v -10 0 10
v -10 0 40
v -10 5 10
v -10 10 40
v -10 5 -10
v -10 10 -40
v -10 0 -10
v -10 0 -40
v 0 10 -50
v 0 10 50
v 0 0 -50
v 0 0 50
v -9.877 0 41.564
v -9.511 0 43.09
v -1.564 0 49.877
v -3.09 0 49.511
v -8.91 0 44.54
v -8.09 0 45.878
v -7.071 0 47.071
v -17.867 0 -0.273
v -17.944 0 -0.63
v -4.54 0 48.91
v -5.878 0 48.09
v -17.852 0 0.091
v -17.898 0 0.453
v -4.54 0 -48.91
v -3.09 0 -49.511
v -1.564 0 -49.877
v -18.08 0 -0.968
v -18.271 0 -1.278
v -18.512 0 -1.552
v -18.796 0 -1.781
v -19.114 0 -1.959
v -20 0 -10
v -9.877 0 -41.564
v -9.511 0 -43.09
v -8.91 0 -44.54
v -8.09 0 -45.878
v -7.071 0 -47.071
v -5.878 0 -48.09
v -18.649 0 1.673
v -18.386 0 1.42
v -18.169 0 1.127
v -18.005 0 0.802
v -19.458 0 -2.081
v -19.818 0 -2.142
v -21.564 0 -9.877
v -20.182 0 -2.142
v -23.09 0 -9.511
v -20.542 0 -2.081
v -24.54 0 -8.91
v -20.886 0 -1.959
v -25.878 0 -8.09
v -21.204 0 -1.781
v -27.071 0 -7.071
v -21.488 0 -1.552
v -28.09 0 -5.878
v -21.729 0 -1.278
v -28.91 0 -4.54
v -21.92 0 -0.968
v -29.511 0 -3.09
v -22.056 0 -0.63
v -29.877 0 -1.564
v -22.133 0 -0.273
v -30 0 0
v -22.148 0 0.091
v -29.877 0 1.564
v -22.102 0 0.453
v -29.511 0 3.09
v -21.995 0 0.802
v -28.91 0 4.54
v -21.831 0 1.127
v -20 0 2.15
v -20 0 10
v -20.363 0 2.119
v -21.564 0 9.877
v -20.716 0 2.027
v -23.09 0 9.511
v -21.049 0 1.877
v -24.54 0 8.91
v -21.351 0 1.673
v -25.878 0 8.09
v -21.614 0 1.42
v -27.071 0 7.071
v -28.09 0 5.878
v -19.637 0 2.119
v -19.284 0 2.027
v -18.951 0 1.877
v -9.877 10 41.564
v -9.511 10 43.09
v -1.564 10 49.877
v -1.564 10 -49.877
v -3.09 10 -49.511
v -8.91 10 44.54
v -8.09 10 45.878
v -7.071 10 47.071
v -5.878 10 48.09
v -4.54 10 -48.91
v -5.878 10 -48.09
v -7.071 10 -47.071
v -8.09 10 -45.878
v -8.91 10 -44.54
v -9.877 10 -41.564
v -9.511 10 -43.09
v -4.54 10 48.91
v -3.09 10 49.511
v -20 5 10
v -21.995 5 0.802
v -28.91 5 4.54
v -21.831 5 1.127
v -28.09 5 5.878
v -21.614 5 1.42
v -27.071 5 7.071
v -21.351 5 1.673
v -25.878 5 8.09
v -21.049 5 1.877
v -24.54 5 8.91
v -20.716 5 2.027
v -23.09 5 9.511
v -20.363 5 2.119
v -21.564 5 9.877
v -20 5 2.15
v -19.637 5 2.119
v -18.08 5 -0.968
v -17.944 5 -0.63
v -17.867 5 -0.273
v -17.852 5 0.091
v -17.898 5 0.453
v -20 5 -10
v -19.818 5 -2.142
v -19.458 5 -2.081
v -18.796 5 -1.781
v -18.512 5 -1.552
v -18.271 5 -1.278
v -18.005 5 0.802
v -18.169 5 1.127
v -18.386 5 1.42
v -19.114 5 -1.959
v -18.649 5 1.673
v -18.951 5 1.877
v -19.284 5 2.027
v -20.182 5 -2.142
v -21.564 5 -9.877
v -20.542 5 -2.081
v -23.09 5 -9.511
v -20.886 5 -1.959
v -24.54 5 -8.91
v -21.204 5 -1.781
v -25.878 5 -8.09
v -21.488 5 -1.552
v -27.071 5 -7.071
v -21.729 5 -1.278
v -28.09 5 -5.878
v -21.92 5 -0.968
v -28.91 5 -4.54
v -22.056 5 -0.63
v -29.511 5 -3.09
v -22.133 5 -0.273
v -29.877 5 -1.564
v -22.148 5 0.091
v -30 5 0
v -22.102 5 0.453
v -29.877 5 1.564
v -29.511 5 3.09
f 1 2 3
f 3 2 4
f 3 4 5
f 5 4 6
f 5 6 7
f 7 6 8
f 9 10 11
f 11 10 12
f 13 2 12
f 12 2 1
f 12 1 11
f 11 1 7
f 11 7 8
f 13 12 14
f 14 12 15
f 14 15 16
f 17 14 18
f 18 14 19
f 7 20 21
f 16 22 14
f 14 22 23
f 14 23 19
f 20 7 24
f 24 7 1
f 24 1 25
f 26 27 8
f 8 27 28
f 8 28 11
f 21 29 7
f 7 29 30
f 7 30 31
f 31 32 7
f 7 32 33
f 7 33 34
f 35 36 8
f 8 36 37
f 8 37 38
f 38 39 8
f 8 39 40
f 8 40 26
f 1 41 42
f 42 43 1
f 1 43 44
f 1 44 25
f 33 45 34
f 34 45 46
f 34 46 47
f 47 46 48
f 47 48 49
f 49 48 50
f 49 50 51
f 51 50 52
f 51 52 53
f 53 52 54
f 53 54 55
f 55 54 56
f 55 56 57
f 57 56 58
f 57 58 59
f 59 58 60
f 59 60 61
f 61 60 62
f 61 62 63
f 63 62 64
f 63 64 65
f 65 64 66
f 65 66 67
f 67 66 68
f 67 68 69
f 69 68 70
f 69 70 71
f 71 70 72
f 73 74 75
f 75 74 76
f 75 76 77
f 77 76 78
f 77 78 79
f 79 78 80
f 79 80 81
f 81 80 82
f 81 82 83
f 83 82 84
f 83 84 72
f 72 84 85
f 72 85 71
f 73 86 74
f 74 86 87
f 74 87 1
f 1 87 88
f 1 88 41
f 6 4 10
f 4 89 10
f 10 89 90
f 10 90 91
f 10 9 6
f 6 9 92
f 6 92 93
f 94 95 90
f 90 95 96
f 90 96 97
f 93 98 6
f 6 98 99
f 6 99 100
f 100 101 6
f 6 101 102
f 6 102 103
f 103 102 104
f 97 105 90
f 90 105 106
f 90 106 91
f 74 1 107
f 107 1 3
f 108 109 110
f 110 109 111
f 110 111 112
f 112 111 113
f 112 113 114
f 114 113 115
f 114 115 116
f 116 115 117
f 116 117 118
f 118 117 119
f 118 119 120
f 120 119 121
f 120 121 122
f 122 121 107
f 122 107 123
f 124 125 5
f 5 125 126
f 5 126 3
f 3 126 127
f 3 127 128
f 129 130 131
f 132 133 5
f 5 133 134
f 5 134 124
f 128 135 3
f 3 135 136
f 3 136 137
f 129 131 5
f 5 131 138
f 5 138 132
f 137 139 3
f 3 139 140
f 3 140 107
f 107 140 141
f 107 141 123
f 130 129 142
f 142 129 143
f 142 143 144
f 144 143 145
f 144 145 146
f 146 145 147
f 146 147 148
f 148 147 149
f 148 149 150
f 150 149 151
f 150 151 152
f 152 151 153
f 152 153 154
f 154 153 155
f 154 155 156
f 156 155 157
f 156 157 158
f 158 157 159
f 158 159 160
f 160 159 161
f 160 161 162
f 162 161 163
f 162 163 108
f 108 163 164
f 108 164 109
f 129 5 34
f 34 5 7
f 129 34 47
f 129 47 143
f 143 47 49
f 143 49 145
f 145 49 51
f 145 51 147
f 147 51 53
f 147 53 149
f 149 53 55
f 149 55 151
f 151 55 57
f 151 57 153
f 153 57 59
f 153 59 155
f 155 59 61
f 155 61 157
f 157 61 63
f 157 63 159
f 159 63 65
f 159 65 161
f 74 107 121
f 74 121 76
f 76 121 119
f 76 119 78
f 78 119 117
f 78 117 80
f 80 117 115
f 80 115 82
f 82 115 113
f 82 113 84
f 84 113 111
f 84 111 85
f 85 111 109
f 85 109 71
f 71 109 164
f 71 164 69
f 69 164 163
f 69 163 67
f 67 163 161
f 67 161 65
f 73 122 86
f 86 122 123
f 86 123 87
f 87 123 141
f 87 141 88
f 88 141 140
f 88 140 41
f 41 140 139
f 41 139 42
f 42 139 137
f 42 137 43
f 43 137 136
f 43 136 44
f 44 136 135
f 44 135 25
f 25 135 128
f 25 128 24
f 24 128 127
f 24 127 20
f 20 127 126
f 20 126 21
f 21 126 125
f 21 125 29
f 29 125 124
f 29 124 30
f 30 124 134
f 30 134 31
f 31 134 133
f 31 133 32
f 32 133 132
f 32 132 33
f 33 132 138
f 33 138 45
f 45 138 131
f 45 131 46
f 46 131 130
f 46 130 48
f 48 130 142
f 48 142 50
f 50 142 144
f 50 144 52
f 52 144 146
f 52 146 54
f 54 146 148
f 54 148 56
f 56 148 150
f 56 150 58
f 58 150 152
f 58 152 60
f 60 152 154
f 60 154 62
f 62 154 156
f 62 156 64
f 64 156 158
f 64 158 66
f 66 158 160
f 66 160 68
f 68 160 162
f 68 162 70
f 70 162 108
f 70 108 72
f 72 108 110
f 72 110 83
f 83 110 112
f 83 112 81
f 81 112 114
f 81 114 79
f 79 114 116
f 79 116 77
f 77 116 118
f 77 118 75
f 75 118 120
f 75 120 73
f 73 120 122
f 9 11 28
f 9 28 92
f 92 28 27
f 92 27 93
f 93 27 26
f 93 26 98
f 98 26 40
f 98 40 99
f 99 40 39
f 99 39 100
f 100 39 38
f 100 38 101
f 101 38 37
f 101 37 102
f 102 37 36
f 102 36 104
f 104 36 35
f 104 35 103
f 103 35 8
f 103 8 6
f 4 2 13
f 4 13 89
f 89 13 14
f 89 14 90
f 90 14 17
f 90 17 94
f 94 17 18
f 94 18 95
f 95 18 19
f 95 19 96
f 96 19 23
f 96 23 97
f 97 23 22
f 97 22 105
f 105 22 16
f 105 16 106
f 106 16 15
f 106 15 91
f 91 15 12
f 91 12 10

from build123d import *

# Parameters (mm, degrees)
SKETCH1_W           = 10
SKETCH1_H           = 100
BOSS_EXTRUDE1_DEPTH = 5
SKETCH2_W           = 10
SKETCH2_H           = 100
BOSS_EXTRUDE2_DEPTH = 5
SKETCH3_W           = 20
SKETCH3_H           = 5
BOSS_EXTRUDE3_DEPTH = 20
FILLET1_R           = 10
CUT_EXTRUDE1_REACH  = 60.523
SKETCH4_R           = 2.15
FILLET2_R           = 10


with BuildPart() as part:
    # Sketch1 → Boss-Extrude1 (new body)
    with BuildSketch(Plane(origin=(0, 0, 0), x_dir=(1, 0, 0), z_dir=(0, 1, 0))):
        with Locations((-5, 0)):
            Rectangle(SKETCH1_W, SKETCH1_H)
    extrude(amount=BOSS_EXTRUDE1_DEPTH)

    # Sketch2 → Boss-Extrude2 (add)
    with BuildSketch(Plane(origin=(0, 5, 0), x_dir=(1, 0, 0), z_dir=(0, 1, 0))):
        with Locations((-5, 0)):
            Rectangle(SKETCH2_W, SKETCH2_H)
    extrude(amount=BOSS_EXTRUDE2_DEPTH)

    # Sketch3 → Boss-Extrude3 (add)
    with BuildSketch(Plane.ZY.offset(10)):
        with Locations((0, 2.5)):
            Rectangle(SKETCH3_W, SKETCH3_H)
    extrude(amount=BOSS_EXTRUDE3_DEPTH)

    # Fillet1
    fillet1_edges = [part.edges().sort_by_distance(p)[0] for p in [
        (-30, 2.5, 10),
        (-30, 2.5, -10),
    ]]
    fillet(fillet1_edges, radius=FILLET1_R - 0.0001)  # a hair under: the kernel refuses the full size

    # Sketch4 → Cut-Extrude1 (cut, up to next)
    with BuildSketch(Plane(origin=(0, 5, 0), x_dir=(1, 0, 0), z_dir=(0, 1, 0)), mode=Mode.PRIVATE) as cut_extrude1_sk1:
        with Locations(Location((-20, 0, 0), (0, 0, 270))):
            Circle(SKETCH4_R)
    cut_extrude1_tool1 = extrude(cut_extrude1_sk1.sketch, amount=-CUT_EXTRUDE1_REACH, mode=Mode.PRIVATE) & part.part
    add(cut_extrude1_tool1.solids().sort_by_distance((-20, 5, 0))[0], mode=Mode.SUBTRACT)

    # Fillet2
    fillet2_edges = [part.edges().sort_by_distance(p)[0] for p in [
        (-10, 5, -50),
        (-10, 5, 50),
    ]]
    fillet(fillet2_edges, radius=FILLET2_R - 0.0001)  # a hair under: the kernel refuses the full size


solid = part.part
